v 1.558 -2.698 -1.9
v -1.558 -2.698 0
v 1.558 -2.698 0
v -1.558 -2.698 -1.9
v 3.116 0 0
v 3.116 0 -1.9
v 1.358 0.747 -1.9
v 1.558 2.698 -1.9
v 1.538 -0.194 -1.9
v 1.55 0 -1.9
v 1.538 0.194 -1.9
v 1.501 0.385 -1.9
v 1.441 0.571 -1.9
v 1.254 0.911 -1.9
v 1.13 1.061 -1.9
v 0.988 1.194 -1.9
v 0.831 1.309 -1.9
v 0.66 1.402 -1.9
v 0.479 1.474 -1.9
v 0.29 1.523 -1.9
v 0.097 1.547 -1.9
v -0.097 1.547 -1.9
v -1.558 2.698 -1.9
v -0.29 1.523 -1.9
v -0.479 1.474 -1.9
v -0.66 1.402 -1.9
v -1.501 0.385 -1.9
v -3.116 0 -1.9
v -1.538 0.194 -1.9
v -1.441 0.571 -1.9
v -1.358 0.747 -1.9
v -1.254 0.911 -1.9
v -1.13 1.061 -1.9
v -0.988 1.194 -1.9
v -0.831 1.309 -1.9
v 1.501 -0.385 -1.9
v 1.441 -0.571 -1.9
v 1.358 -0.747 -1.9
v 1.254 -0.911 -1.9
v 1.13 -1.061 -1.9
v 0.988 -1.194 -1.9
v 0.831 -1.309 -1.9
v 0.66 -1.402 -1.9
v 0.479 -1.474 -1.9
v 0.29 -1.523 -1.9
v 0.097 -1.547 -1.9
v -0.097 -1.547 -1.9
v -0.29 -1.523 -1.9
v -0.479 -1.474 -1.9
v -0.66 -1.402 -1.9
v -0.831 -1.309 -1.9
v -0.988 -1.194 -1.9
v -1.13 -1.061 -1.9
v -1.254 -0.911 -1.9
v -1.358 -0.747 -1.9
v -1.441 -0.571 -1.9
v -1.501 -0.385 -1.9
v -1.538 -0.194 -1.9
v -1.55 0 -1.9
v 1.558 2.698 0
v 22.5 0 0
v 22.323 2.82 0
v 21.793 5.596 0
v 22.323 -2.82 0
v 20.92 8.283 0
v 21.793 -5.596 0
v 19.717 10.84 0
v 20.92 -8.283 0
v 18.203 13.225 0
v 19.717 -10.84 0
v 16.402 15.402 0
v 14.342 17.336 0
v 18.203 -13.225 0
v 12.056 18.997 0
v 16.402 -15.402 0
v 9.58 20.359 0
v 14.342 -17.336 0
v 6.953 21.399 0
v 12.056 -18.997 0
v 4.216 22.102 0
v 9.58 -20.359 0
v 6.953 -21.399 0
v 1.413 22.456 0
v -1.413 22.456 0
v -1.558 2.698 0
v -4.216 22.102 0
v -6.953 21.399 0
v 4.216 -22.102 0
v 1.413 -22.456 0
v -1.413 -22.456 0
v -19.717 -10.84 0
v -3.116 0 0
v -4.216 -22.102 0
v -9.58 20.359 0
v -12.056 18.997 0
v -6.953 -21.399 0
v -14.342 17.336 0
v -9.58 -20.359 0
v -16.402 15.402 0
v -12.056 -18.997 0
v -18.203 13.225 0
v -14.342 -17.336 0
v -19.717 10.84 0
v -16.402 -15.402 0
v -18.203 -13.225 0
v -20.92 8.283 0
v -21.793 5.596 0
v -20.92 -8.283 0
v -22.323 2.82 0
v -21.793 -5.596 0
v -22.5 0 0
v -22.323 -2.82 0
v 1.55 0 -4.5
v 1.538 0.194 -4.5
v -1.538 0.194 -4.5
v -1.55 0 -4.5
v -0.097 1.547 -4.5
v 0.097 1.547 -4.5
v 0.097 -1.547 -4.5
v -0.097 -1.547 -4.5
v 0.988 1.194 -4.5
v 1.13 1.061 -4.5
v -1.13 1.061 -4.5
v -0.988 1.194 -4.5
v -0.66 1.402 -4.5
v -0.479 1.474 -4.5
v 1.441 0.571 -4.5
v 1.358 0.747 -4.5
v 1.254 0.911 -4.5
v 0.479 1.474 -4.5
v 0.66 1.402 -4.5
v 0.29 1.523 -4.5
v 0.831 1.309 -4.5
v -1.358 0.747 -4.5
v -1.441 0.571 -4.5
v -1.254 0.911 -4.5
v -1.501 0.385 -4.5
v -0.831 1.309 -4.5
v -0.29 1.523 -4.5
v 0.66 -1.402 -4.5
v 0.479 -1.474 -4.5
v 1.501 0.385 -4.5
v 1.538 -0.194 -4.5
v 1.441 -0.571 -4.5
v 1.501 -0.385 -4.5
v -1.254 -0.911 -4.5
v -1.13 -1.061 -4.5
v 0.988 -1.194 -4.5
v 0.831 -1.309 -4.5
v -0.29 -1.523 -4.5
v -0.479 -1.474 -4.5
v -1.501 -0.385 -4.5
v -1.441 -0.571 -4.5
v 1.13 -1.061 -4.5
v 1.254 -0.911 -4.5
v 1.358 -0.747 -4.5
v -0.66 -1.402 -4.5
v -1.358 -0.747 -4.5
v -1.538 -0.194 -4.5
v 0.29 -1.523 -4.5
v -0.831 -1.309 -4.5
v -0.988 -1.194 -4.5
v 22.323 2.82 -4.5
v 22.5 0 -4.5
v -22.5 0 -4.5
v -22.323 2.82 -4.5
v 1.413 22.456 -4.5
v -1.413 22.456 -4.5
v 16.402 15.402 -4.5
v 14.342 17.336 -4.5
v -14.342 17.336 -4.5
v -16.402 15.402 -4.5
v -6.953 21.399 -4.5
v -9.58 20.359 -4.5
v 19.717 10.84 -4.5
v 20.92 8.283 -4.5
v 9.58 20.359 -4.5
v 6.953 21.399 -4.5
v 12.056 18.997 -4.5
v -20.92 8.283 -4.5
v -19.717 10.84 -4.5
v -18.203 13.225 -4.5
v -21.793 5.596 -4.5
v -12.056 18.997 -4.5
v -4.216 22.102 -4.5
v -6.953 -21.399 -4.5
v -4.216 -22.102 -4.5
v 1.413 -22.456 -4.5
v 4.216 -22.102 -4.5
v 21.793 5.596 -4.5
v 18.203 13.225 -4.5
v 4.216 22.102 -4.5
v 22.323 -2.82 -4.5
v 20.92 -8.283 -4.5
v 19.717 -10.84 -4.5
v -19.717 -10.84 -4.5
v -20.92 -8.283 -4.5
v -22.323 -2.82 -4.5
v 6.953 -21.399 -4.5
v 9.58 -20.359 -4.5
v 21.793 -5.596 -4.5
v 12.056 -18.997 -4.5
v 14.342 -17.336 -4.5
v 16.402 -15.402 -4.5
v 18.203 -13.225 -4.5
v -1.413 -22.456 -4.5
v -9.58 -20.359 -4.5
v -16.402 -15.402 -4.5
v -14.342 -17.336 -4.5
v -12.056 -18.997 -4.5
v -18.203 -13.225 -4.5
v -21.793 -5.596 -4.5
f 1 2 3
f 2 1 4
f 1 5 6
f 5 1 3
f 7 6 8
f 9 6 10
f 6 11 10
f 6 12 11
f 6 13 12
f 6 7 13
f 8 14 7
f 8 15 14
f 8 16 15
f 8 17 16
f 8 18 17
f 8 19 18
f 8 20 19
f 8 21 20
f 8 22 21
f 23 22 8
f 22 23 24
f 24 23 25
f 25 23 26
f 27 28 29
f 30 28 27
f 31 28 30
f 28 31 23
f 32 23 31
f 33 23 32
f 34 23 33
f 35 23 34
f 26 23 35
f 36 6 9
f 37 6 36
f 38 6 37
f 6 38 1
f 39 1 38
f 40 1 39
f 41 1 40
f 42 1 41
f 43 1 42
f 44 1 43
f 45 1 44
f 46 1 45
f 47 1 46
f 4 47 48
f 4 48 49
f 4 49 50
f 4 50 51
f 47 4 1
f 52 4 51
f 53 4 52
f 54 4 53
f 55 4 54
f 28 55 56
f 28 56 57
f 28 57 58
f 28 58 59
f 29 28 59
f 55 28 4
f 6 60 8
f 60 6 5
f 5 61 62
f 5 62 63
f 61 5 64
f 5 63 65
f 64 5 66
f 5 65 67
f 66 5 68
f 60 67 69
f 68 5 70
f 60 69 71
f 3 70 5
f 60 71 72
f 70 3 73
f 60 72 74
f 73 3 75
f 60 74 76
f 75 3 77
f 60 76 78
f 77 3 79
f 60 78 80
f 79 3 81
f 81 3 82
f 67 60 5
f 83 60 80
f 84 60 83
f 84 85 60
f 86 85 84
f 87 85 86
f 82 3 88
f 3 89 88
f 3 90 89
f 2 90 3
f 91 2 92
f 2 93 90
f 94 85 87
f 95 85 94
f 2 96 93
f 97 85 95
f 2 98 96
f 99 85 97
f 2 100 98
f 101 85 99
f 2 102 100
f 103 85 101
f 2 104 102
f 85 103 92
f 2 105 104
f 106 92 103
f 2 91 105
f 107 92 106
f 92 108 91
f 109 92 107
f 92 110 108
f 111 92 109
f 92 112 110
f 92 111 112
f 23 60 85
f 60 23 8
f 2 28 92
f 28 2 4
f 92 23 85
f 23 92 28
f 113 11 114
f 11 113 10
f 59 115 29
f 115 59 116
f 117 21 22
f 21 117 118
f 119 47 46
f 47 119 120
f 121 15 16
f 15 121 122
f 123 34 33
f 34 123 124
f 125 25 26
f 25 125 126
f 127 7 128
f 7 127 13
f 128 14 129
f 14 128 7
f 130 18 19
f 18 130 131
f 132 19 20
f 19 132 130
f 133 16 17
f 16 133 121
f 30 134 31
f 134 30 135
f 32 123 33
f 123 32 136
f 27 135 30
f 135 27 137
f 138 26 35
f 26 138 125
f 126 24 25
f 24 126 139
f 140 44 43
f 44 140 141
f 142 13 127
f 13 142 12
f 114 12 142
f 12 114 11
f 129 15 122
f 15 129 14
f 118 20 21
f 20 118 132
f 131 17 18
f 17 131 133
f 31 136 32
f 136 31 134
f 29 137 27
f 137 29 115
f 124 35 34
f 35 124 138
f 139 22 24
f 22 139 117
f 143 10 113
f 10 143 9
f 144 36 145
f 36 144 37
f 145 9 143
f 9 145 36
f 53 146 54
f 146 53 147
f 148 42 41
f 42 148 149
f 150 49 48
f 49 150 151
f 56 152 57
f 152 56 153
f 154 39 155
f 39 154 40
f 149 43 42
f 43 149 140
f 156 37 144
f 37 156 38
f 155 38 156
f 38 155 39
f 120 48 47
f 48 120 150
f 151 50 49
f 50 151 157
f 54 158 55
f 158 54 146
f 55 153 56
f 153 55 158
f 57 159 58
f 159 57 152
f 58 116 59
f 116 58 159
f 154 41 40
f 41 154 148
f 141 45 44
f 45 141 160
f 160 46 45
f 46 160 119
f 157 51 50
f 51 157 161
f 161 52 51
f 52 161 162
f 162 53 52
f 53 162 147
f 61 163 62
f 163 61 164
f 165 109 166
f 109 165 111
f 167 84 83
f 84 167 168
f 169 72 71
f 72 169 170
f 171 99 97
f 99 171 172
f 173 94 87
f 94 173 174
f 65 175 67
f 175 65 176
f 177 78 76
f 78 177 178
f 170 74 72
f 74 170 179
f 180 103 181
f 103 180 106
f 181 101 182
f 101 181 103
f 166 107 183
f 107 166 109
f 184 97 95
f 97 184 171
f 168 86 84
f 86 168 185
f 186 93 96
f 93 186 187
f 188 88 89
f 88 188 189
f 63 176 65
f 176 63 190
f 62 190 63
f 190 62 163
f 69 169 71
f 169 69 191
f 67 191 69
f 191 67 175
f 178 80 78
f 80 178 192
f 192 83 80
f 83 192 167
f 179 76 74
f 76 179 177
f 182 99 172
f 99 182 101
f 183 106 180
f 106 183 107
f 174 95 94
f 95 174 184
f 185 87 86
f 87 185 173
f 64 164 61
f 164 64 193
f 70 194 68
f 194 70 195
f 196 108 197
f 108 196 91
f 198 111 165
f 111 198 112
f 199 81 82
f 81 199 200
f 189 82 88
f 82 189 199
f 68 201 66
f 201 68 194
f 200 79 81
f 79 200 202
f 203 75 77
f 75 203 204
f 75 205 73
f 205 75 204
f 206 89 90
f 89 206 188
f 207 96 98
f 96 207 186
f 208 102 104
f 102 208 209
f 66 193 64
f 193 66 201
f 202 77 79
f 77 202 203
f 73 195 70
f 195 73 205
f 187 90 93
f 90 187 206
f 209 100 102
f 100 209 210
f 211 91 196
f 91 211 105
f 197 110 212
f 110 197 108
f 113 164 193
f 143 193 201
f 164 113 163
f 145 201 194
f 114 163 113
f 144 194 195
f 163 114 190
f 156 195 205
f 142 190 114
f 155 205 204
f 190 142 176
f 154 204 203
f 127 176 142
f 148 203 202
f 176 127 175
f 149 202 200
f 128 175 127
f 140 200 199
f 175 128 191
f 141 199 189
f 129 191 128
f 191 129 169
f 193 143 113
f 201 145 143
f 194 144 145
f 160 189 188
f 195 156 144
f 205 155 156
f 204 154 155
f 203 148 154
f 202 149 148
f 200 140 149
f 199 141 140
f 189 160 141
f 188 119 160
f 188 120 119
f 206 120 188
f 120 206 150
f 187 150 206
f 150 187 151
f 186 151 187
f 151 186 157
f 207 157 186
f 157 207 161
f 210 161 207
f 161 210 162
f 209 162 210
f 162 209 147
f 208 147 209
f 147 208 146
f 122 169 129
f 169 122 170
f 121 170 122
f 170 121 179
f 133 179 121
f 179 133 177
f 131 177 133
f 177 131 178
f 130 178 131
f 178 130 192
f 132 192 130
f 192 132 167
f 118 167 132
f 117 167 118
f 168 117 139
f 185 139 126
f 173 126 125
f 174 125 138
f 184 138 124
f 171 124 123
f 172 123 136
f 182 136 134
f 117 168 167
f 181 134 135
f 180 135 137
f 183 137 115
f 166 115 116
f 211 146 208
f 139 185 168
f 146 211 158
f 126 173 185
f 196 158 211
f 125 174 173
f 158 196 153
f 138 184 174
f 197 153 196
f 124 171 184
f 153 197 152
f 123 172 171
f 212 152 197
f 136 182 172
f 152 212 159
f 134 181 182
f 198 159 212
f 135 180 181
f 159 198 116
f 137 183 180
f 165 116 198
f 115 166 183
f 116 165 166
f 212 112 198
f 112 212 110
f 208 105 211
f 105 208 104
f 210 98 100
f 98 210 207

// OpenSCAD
$fn = 50;

difference() {
	union() {
		translate(v = [0, 0, -4.5]) {
			cylinder(h = 4.5, r = 22.5);
		}
	}
	union() {
		translate(v = [0, 0, 0]) {
			rotate(a = [0, 0, 0]) {
				difference() {
					union() {
						translate(v = [0, 0, -1.9]) {
							linear_extrude(height = 1.9) {
								polygon(points = [[3.1158, 0.0], [1.5579000000000005, 2.698361953111554], [-1.5578999999999994, 2.6983619531115544], [-3.1158, 3.815754496783323e-16], [-1.5579000000000014, -2.6983619531115535], [1.557899999999998, -2.6983619531115552]]);
							}
						}
					}
					union();
				}
			}
		}
		#translate(v = [0, 0, -100.0]) {
			cylinder(h = 200, r = 1.55);
		}
	}
}
